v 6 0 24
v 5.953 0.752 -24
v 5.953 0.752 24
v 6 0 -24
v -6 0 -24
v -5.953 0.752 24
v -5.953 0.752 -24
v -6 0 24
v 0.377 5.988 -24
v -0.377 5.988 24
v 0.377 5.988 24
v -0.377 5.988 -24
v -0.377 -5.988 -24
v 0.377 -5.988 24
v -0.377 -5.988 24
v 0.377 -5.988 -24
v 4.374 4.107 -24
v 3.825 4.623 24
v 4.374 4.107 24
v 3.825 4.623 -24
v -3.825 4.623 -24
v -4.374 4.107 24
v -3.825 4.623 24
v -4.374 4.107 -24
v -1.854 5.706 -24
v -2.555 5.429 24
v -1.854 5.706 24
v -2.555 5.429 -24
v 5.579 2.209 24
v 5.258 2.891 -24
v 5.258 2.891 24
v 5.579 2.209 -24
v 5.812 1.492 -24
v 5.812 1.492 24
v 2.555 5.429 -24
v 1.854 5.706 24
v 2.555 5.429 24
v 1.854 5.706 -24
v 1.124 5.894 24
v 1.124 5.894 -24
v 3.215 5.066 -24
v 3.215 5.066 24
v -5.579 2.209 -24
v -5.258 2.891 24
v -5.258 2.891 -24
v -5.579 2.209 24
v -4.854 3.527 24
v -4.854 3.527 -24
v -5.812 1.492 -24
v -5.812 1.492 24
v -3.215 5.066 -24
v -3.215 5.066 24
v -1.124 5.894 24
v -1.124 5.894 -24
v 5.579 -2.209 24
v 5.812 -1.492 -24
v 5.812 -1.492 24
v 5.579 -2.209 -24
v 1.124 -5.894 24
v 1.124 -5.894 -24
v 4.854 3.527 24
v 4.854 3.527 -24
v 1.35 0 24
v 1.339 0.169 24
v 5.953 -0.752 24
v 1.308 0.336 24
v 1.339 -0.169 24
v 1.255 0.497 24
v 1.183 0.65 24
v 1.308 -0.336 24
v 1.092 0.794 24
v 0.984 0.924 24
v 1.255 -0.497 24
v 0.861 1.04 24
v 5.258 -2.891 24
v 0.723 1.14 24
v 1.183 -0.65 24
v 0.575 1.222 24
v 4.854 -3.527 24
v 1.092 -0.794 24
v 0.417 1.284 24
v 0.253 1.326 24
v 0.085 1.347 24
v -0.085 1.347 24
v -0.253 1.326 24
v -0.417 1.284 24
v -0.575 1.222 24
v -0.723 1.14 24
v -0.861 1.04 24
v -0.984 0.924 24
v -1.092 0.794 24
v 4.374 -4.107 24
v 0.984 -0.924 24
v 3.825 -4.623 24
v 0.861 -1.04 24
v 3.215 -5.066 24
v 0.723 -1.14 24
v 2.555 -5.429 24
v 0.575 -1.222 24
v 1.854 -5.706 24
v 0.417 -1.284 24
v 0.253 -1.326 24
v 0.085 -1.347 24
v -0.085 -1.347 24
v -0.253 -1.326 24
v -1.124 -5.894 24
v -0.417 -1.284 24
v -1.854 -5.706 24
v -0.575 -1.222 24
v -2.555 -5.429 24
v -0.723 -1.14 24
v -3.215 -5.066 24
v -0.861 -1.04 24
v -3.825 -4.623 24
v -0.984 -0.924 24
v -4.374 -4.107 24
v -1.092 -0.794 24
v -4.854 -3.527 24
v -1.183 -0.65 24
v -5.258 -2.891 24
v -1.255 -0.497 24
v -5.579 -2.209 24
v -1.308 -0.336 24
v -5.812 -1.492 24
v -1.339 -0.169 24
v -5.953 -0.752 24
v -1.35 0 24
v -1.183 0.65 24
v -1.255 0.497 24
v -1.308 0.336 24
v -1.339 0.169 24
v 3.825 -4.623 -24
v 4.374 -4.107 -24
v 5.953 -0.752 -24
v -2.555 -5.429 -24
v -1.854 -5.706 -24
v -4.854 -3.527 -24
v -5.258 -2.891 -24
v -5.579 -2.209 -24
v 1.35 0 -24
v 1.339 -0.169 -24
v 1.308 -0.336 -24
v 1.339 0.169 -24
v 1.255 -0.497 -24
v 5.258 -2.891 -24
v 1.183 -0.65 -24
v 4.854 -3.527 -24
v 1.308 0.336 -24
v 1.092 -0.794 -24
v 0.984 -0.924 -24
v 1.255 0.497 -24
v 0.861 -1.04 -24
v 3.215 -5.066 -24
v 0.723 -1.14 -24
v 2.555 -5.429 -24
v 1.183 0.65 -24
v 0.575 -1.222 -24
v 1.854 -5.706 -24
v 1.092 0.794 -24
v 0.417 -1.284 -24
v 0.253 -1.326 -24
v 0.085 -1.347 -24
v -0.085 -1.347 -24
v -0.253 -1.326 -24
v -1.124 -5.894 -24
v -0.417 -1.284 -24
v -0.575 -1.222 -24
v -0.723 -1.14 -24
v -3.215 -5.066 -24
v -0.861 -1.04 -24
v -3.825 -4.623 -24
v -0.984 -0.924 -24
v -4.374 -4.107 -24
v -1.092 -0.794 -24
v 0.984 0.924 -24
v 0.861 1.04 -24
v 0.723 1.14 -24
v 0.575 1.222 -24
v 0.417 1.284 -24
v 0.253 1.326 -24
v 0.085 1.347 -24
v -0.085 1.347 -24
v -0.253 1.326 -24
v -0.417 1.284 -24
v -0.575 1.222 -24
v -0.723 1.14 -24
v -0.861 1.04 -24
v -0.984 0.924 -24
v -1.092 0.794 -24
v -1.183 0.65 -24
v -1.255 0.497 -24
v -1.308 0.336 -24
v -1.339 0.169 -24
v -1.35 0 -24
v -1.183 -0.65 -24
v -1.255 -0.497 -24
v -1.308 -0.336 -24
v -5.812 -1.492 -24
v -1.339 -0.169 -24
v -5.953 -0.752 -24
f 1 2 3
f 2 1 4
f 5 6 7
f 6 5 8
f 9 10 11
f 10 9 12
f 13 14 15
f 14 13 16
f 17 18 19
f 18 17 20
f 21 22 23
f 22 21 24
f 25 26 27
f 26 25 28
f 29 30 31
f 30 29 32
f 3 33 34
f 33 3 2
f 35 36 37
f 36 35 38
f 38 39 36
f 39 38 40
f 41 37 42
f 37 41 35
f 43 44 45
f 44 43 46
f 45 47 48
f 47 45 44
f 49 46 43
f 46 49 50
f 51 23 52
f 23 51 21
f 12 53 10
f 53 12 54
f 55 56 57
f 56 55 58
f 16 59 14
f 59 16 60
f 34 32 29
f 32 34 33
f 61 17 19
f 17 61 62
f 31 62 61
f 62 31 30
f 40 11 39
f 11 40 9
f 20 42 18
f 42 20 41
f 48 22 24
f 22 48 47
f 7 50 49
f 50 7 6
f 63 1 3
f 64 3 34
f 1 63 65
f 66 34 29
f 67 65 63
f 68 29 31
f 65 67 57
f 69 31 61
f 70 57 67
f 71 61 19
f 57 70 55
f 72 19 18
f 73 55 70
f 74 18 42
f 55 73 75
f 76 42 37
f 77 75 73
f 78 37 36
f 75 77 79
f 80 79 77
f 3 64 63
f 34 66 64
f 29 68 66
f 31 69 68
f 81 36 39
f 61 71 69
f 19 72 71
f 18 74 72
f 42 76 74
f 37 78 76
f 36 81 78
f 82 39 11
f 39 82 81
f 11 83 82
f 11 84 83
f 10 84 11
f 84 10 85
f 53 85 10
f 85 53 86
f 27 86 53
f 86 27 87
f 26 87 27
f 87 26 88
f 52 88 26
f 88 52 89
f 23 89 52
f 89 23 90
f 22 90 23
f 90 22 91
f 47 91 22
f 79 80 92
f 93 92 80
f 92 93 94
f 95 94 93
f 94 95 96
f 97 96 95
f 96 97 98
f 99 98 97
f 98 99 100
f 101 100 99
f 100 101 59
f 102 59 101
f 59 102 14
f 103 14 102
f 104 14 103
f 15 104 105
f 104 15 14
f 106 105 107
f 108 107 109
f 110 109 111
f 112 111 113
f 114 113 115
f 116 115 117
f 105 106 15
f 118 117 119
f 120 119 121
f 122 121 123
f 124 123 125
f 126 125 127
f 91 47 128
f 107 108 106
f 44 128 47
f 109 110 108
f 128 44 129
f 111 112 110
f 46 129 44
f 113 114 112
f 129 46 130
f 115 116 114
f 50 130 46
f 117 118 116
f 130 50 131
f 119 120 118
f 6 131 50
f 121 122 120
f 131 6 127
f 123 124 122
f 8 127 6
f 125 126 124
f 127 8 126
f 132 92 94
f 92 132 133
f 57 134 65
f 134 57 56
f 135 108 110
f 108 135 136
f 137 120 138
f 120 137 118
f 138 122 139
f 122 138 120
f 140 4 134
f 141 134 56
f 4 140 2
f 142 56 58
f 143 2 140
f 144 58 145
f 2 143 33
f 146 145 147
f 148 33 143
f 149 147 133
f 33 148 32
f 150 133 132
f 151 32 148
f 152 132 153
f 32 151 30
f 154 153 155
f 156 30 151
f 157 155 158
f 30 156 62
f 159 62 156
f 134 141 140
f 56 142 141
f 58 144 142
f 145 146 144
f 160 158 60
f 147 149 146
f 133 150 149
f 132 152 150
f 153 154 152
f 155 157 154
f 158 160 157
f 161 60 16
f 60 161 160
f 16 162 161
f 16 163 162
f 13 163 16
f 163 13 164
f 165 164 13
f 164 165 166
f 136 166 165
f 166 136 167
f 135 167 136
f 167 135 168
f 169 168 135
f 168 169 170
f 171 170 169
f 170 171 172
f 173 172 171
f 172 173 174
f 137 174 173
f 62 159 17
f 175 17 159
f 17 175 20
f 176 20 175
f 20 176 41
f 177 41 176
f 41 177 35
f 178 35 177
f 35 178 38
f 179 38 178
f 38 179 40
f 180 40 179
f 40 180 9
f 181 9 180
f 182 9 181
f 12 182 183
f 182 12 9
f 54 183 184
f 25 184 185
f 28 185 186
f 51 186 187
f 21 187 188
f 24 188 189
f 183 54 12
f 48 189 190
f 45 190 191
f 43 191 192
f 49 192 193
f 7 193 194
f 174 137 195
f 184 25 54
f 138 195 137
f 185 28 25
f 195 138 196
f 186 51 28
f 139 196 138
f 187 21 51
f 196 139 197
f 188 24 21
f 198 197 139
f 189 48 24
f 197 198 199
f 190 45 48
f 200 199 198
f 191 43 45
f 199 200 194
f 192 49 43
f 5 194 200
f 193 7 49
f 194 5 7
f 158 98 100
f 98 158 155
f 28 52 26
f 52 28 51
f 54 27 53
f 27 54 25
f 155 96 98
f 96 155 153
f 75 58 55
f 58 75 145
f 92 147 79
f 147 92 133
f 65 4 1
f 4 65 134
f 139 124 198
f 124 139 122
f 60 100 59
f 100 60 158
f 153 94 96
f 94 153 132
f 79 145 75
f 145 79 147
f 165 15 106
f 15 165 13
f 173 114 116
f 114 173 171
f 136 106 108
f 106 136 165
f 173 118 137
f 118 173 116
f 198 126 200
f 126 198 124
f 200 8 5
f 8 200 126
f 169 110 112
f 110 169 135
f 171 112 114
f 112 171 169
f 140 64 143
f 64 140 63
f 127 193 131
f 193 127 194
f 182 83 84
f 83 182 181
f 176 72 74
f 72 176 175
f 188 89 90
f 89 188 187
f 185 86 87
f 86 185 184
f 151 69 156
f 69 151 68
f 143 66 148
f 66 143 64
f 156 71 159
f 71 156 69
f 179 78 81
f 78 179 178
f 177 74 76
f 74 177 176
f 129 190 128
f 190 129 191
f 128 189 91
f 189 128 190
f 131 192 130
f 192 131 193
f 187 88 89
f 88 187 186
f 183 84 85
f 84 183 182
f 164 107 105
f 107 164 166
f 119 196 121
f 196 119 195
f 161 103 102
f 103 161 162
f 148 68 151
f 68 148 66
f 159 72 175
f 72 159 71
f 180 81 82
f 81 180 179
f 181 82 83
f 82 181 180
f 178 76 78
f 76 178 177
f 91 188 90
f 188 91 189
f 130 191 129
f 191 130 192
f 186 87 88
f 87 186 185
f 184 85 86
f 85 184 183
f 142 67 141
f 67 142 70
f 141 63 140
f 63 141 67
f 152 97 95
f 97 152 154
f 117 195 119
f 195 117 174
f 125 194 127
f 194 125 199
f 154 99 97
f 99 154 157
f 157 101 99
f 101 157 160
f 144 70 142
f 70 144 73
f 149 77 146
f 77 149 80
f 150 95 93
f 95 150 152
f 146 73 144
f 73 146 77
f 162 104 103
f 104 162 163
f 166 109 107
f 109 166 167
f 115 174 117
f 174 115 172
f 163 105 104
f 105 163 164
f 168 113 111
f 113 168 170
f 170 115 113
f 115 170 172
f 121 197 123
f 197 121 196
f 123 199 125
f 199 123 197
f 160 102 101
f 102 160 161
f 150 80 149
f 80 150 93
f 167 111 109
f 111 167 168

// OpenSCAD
$fn = 50;


difference() {
	union() {
		translate(v = [0, 0, -24.0000000000]) {
			cylinder(h = 48, r = 6.0000000000);
		}
	}
	union() {
		translate(v = [0, 0, -100.0000000000]) {
			cylinder(h = 200, r = 1.3500000000);
		}
	}
}
